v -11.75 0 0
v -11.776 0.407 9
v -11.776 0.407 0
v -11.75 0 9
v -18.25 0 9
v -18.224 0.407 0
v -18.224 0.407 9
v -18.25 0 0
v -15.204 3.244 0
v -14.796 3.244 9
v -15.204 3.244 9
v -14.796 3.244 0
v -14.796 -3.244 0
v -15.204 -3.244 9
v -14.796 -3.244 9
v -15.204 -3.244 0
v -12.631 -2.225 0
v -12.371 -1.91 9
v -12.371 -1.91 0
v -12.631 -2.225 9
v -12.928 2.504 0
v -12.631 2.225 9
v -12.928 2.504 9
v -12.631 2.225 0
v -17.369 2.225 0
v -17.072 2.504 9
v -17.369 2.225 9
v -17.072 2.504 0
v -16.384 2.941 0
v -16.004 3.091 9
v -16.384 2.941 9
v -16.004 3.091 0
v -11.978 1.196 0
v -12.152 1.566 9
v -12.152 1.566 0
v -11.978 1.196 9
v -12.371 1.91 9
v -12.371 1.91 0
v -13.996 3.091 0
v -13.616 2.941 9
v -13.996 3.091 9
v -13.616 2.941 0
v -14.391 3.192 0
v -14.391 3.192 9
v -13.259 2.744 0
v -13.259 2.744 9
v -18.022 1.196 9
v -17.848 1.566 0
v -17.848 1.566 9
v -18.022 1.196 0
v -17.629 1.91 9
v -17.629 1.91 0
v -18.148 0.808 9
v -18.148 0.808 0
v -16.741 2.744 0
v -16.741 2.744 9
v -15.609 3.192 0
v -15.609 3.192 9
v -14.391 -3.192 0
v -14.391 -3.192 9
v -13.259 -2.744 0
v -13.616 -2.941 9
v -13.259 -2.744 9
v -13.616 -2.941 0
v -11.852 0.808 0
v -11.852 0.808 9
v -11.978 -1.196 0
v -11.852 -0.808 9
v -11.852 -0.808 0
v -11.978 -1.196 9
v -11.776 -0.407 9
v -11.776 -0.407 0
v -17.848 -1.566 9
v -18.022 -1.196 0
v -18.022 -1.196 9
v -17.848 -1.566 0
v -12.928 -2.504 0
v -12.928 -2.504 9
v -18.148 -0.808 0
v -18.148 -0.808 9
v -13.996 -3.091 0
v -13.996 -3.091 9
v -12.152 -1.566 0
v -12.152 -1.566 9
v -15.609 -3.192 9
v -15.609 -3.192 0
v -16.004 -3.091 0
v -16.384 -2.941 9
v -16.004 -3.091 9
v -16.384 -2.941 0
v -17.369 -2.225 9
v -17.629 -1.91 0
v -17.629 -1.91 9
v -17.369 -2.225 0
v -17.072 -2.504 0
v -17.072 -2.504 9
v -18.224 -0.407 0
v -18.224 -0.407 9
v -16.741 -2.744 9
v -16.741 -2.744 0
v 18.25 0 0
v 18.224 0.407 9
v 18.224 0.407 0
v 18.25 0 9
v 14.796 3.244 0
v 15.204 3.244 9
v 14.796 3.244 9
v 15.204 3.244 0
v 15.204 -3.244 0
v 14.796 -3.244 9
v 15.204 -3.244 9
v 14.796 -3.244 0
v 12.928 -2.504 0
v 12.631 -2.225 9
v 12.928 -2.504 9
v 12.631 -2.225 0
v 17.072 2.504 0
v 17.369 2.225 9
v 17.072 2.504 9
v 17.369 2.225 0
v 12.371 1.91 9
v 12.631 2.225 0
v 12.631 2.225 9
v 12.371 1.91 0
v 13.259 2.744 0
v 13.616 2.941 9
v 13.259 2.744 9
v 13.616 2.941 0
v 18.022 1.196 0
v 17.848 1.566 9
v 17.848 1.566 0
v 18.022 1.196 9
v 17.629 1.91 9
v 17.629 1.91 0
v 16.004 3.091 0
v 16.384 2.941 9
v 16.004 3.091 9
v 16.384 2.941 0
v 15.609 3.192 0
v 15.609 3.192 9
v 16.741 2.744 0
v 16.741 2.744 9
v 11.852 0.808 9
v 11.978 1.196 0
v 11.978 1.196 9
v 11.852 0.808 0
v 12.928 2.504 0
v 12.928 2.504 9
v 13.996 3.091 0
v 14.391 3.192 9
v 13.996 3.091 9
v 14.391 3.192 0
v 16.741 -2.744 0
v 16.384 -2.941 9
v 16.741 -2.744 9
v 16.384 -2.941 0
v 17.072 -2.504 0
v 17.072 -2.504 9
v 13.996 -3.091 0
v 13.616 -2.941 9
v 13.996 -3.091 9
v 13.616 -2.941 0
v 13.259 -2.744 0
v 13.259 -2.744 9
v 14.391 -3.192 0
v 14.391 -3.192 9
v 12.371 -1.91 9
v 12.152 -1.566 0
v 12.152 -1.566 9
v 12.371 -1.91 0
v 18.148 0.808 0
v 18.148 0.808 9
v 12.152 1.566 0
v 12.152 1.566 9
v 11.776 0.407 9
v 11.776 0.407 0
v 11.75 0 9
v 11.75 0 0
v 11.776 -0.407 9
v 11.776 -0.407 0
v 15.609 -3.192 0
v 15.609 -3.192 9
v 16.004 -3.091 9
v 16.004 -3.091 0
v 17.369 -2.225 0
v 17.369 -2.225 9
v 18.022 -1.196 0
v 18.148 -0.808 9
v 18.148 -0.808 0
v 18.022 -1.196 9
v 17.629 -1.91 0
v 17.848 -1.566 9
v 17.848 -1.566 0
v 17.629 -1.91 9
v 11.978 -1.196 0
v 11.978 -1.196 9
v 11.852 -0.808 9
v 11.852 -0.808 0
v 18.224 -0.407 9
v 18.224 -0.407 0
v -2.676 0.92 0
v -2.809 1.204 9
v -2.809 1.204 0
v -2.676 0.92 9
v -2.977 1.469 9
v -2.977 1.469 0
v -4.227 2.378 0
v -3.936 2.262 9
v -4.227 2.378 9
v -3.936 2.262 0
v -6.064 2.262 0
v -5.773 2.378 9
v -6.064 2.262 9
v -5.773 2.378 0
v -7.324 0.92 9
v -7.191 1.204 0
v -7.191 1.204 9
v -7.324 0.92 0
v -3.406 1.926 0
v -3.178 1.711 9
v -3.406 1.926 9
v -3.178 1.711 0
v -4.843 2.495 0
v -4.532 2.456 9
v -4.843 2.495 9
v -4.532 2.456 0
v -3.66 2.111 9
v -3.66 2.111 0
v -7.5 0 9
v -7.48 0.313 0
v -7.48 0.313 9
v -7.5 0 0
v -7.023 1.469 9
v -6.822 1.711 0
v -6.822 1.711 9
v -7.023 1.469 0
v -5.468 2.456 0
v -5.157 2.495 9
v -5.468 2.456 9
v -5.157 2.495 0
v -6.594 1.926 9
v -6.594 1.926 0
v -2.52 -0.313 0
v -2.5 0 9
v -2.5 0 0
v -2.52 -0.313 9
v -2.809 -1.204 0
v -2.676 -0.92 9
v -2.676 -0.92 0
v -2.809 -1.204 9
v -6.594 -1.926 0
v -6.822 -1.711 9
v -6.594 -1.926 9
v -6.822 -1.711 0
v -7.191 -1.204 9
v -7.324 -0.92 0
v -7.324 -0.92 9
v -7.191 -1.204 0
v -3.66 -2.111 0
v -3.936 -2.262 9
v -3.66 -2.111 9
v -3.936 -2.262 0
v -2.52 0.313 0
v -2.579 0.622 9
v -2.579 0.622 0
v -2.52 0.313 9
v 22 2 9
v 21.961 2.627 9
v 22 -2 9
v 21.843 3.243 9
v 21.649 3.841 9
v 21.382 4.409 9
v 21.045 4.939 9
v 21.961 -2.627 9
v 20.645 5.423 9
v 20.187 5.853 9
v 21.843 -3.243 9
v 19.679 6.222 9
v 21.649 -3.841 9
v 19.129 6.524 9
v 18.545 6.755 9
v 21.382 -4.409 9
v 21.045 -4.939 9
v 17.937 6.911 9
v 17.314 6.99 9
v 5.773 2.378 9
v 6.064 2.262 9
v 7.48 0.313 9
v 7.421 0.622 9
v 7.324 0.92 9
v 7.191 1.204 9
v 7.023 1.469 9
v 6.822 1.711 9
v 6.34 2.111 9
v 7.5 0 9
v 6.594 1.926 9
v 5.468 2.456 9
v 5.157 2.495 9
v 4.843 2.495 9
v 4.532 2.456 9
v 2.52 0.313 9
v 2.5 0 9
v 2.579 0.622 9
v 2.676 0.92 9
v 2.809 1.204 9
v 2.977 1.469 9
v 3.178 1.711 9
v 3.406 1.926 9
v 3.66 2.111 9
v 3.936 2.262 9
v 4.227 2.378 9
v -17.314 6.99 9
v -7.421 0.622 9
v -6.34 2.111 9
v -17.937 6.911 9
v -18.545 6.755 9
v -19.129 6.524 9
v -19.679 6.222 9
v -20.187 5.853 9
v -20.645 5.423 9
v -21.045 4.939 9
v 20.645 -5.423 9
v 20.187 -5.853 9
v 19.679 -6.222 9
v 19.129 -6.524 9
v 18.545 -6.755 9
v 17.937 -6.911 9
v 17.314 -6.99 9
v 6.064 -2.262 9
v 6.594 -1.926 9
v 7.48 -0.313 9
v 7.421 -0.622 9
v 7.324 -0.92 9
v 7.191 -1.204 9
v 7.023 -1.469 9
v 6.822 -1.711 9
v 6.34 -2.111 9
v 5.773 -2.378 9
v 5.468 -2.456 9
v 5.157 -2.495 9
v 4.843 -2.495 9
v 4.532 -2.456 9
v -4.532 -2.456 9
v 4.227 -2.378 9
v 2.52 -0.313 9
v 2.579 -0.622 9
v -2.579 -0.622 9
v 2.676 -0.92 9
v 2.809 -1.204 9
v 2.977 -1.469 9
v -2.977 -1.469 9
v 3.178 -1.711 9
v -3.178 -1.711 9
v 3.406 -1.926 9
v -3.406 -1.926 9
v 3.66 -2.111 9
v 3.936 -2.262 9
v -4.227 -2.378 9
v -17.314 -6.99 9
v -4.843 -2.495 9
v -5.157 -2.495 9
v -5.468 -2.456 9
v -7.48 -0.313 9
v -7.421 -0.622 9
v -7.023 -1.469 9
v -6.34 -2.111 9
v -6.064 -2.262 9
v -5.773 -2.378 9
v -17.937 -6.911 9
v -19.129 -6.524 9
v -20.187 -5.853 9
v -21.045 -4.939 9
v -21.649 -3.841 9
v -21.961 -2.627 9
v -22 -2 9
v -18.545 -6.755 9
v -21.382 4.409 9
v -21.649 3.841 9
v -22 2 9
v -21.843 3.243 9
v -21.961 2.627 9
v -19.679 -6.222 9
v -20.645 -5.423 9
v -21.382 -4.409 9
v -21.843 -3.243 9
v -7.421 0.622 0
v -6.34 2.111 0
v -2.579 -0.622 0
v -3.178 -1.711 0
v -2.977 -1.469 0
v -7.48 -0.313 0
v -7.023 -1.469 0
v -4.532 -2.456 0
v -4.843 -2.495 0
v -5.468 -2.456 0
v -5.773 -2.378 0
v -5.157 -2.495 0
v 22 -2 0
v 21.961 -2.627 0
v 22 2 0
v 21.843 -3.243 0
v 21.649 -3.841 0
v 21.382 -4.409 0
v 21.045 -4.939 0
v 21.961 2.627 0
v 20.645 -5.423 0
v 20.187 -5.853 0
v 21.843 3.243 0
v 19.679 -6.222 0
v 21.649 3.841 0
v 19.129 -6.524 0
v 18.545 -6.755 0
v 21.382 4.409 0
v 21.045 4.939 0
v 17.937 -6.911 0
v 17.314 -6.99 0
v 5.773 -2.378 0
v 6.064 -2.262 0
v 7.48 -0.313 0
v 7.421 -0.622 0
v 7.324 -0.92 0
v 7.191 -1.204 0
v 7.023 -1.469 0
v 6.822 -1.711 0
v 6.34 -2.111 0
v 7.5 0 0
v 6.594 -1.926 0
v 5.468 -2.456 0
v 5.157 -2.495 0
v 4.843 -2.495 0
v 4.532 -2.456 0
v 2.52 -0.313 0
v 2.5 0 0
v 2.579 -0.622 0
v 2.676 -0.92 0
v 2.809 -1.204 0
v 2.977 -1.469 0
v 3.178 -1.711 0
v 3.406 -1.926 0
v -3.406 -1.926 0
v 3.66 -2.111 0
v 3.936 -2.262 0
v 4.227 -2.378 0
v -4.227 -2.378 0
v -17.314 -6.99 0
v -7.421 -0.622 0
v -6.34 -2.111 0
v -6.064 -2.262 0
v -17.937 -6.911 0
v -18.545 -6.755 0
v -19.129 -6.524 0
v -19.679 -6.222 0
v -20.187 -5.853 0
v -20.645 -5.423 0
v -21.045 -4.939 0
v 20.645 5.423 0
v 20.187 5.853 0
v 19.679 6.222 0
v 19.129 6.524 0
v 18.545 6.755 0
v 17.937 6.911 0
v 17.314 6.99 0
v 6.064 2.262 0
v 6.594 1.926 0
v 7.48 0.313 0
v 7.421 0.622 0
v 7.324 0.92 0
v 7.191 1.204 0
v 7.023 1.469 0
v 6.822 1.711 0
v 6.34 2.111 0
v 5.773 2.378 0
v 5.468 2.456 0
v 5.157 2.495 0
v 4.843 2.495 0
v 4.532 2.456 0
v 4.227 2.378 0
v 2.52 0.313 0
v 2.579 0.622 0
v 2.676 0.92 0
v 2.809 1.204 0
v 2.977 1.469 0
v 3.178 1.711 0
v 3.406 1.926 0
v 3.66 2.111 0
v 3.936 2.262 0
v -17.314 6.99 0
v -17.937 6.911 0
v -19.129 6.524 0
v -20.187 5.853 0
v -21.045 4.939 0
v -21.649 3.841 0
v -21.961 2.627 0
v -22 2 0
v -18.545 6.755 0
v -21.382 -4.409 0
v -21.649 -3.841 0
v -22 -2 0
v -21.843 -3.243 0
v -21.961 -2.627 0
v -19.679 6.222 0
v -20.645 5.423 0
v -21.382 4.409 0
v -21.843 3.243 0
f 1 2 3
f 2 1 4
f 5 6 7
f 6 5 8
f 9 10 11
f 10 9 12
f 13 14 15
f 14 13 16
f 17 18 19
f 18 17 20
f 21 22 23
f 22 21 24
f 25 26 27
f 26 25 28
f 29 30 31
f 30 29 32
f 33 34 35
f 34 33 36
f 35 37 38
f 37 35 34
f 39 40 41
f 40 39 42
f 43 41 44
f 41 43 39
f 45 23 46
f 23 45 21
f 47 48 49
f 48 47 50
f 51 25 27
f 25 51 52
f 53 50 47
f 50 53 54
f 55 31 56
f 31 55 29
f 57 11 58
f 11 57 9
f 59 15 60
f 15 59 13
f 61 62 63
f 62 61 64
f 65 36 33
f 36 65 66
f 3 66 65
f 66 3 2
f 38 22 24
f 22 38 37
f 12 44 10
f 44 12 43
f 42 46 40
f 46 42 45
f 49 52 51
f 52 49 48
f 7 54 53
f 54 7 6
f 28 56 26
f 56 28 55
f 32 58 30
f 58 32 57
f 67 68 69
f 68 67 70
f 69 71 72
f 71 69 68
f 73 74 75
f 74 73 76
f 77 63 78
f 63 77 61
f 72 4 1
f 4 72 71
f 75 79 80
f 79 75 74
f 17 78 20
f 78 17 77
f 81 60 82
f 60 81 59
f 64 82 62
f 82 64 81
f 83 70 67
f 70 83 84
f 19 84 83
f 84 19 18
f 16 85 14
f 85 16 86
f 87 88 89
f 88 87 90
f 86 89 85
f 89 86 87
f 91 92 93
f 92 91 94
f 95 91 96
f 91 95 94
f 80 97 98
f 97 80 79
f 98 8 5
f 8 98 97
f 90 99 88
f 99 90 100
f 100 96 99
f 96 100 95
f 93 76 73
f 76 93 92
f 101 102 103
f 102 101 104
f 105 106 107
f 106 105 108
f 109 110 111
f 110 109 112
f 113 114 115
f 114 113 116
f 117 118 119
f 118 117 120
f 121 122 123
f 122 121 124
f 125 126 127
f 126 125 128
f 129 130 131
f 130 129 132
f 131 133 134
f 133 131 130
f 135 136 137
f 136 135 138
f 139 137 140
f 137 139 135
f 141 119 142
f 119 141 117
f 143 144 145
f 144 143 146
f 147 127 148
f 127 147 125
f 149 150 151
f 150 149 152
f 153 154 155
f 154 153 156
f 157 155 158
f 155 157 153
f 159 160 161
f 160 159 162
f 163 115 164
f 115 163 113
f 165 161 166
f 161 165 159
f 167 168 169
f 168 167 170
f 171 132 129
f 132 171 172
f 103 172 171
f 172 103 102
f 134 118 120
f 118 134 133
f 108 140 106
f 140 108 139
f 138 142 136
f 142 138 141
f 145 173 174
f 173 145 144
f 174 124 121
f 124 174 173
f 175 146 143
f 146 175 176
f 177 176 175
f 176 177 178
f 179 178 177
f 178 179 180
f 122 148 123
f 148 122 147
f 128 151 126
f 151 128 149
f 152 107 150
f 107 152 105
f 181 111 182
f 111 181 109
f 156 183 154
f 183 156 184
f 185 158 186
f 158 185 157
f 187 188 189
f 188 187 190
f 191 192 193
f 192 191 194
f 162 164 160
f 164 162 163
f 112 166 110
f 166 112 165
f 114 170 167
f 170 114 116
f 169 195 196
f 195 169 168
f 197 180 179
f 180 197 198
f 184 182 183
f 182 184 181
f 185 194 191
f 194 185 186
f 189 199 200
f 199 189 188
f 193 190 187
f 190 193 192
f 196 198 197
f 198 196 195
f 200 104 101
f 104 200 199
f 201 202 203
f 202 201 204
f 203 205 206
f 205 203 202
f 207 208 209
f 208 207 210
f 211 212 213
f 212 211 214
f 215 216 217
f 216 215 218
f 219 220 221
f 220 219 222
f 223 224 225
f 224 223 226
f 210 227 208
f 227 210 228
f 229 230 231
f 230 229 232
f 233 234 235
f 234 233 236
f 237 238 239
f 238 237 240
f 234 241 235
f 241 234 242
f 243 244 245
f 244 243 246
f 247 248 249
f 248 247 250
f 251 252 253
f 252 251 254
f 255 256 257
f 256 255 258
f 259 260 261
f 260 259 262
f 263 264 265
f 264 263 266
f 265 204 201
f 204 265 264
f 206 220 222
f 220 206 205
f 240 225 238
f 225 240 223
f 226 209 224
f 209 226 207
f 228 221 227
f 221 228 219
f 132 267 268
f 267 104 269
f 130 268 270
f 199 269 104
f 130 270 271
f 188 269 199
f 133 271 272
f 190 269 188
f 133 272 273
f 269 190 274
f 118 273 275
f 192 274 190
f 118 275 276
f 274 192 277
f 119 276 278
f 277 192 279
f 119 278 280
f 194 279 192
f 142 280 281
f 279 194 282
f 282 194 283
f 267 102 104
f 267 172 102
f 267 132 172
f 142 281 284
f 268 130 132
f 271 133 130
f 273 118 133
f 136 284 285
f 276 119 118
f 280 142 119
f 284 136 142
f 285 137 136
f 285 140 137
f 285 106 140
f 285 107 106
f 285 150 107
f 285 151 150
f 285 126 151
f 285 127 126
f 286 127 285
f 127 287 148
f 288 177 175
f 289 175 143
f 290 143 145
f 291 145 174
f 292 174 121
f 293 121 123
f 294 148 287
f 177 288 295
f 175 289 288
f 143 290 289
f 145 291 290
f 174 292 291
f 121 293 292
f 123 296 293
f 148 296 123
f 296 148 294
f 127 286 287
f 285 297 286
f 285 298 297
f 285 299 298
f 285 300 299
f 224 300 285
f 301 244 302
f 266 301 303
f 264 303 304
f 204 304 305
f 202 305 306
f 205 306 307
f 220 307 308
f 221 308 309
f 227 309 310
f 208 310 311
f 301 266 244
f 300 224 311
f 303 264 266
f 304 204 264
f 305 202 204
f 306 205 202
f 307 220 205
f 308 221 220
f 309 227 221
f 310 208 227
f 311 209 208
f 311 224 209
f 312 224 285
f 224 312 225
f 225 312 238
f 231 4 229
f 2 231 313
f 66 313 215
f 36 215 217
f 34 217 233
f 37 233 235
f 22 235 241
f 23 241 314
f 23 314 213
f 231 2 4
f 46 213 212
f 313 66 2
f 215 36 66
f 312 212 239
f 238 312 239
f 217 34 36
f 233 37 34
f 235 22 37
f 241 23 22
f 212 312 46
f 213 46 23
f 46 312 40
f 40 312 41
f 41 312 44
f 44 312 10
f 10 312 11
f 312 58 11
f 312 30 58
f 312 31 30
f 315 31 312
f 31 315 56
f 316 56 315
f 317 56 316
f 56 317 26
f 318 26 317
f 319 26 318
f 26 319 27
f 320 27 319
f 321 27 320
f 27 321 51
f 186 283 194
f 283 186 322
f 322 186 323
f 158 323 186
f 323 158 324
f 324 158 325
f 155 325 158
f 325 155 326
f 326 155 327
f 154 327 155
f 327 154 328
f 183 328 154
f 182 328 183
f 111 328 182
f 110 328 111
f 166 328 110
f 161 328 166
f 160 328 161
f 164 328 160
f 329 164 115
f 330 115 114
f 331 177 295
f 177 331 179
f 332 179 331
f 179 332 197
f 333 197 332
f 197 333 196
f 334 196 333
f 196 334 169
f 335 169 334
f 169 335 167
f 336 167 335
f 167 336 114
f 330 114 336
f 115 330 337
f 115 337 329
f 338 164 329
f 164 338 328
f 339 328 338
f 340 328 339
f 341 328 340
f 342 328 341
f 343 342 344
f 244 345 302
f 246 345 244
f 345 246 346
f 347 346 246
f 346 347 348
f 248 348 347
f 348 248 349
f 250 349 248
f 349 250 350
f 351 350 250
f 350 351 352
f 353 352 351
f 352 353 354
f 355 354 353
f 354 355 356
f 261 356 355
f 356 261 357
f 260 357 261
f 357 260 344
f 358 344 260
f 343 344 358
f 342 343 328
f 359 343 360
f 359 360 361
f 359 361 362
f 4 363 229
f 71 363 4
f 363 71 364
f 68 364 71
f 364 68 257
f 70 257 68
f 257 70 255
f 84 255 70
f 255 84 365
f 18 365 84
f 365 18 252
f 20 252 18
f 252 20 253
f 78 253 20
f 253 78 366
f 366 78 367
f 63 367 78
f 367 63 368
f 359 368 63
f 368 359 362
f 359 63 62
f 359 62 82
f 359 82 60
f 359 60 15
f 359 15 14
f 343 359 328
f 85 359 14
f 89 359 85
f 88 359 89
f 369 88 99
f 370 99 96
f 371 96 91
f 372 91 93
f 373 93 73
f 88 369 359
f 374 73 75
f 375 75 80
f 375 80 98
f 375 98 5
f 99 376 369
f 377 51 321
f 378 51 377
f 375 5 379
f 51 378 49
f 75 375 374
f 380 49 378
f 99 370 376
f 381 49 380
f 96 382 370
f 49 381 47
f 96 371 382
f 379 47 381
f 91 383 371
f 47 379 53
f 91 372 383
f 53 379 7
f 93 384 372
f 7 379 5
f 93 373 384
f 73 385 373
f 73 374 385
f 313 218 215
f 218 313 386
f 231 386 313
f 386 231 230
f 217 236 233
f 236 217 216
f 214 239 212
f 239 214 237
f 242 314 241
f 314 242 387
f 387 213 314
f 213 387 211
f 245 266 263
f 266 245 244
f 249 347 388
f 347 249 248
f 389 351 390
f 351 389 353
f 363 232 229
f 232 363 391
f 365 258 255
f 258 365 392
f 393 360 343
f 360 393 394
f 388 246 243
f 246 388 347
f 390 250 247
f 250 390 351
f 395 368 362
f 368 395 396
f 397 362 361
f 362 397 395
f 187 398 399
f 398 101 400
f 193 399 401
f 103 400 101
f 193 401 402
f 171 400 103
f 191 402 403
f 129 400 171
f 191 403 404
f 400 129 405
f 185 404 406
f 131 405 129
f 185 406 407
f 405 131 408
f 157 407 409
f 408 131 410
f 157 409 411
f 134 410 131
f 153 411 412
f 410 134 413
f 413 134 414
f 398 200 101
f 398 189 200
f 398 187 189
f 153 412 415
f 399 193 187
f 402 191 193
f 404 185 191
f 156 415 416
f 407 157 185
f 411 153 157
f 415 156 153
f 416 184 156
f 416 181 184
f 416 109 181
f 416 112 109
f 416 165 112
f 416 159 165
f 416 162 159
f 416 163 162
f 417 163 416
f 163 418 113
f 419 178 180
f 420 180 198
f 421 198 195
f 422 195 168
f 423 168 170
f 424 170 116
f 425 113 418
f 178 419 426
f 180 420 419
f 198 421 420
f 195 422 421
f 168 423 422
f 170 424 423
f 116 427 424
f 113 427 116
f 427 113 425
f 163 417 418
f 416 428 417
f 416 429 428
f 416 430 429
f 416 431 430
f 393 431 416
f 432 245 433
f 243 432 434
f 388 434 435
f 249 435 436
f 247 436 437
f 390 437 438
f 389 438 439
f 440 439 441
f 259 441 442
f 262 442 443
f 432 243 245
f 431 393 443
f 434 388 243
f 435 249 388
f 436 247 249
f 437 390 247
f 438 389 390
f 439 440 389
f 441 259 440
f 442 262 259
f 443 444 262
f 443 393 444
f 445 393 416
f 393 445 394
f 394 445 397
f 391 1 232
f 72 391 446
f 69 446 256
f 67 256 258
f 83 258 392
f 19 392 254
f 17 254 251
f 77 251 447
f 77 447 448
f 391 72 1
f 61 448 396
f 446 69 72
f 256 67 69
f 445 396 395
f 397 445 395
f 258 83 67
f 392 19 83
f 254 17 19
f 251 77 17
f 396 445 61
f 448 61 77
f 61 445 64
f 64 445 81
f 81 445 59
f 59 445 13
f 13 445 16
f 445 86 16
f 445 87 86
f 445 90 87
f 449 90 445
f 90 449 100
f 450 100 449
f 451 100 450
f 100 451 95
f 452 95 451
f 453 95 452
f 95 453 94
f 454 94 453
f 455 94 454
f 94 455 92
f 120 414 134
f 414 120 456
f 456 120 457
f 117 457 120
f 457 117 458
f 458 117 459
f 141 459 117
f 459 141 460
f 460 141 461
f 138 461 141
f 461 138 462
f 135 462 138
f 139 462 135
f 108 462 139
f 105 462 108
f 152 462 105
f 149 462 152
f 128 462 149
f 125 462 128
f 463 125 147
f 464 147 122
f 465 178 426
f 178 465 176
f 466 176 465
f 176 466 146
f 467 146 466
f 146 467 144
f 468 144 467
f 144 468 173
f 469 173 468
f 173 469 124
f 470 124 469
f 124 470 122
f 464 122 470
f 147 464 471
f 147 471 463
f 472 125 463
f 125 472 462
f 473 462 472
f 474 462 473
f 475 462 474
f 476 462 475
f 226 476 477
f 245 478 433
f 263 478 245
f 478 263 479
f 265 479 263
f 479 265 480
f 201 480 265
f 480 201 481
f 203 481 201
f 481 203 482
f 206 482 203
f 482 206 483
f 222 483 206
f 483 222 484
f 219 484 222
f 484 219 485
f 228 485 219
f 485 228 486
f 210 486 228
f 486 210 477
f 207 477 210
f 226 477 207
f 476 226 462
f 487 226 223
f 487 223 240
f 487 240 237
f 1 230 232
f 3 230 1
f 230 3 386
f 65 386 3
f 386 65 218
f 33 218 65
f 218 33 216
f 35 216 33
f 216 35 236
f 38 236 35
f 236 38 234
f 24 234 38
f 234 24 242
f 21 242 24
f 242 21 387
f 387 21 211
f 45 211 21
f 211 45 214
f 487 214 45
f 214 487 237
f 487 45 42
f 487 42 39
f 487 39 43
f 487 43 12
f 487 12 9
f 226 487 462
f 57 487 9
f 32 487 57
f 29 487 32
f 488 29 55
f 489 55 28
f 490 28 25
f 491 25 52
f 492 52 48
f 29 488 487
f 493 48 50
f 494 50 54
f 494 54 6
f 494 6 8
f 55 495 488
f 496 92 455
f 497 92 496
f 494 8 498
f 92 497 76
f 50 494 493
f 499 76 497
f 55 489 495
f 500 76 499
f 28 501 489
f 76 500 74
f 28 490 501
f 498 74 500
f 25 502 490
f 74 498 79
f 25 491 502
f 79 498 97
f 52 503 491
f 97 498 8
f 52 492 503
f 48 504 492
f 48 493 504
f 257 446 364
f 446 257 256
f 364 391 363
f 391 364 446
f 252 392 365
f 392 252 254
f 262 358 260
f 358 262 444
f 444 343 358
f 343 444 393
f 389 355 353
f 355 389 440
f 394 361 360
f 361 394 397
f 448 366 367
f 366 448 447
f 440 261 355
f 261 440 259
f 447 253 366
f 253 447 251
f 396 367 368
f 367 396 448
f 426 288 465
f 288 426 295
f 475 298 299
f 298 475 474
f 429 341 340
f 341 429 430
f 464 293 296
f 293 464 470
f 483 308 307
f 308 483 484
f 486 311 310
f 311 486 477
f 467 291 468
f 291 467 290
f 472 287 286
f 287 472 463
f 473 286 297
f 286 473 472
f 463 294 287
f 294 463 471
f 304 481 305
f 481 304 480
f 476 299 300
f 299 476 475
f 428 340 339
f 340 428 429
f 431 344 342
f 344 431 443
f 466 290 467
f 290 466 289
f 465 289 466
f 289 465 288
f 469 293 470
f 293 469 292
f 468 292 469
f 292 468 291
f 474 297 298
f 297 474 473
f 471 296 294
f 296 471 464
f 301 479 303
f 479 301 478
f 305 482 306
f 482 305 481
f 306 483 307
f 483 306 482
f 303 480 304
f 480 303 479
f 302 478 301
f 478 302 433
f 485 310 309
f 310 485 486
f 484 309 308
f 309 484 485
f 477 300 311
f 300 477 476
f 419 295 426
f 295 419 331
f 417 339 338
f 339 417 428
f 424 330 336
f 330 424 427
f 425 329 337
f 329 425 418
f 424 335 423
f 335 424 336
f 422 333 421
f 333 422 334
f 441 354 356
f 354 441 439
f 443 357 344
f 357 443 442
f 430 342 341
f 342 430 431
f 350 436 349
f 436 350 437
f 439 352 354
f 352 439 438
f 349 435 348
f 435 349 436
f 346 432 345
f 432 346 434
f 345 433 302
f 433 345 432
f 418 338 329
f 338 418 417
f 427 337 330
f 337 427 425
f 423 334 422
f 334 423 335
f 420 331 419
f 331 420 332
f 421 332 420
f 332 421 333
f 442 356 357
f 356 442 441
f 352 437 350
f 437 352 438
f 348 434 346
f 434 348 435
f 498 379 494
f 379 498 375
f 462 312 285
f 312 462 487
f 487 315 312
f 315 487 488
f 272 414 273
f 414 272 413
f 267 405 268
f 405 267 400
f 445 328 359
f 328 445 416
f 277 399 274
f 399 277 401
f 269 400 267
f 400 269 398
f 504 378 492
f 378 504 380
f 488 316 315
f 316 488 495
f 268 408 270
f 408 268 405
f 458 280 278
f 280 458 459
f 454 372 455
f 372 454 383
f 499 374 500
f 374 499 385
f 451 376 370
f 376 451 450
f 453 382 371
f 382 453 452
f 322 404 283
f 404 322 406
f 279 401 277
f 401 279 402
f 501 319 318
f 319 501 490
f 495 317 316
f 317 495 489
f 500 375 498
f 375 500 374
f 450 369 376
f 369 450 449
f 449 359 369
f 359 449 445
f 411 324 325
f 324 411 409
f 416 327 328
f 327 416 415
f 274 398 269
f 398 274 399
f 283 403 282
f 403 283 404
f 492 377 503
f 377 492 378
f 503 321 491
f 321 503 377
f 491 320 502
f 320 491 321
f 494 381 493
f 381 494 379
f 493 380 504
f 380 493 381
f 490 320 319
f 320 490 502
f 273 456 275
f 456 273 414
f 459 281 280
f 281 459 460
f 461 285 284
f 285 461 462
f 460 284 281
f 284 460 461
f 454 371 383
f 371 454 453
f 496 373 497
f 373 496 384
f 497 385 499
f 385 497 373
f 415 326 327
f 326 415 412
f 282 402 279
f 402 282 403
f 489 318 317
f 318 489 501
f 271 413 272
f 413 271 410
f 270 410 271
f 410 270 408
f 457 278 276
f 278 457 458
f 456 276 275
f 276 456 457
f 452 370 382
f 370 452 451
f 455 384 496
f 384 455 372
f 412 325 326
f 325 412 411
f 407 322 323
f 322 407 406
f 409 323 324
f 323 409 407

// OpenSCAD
$fn = 50;


difference() {
	union() {
		hull() {
			translate(v = [-17.0000000000, 2.0000000000, 0]) {
				cylinder(h = 9, r = 5);
			}
			translate(v = [17.0000000000, 2.0000000000, 0]) {
				cylinder(h = 9, r = 5);
			}
			translate(v = [-17.0000000000, -2.0000000000, 0]) {
				cylinder(h = 9, r = 5);
			}
			translate(v = [17.0000000000, -2.0000000000, 0]) {
				cylinder(h = 9, r = 5);
			}
		}
	}
	union() {
		#translate(v = [-15.0000000000, 0.0000000000, 0]) {
			cylinder(h = 9, r = 3.2500000000);
		}
		#translate(v = [15.0000000000, 0.0000000000, 0]) {
			cylinder(h = 9, r = 3.2500000000);
		}
		#translate(v = [-15.0000000000, 0.0000000000, -100.0000000000]) {
			cylinder(h = 200, r = 3.2500000000);
		}
		#translate(v = [-15.0000000000, 0.0000000000, -100.0000000000]) {
			cylinder(h = 200, r = 3.2500000000);
		}
		#translate(v = [15.0000000000, 0.0000000000, -100.0000000000]) {
			cylinder(h = 200, r = 3.2500000000);
		}
		#translate(v = [15.0000000000, 0.0000000000, -100.0000000000]) {
			cylinder(h = 200, r = 3.2500000000);
		}
		#translate(v = [-15.0000000000, 0.0000000000, 0]) {
			cylinder(h = 9, r = 1.8000000000);
		}
		#translate(v = [15.0000000000, 0.0000000000, 0]) {
			cylinder(h = 9, r = 1.8000000000);
		}
		#translate(v = [-15.0000000000, 0.0000000000, 0]) {
			cylinder(h = 9, r = 1.8000000000);
		}
		#translate(v = [15.0000000000, 0.0000000000, 0]) {
			cylinder(h = 9, r = 1.8000000000);
		}
		#translate(v = [-15.0000000000, 0.0000000000, 0]) {
			cylinder(h = 9, r = 1.8000000000);
		}
		#translate(v = [15.0000000000, 0.0000000000, 0]) {
			cylinder(h = 9, r = 1.8000000000);
		}
		#translate(v = [-5.0000000000, 0, 0]) {
			cylinder(h = 9, r = 2.5000000000);
		}
		#translate(v = [5.0000000000, 0, 0]) {
			cylinder(h = 9, r = 2.5000000000);
		}
	}
}
